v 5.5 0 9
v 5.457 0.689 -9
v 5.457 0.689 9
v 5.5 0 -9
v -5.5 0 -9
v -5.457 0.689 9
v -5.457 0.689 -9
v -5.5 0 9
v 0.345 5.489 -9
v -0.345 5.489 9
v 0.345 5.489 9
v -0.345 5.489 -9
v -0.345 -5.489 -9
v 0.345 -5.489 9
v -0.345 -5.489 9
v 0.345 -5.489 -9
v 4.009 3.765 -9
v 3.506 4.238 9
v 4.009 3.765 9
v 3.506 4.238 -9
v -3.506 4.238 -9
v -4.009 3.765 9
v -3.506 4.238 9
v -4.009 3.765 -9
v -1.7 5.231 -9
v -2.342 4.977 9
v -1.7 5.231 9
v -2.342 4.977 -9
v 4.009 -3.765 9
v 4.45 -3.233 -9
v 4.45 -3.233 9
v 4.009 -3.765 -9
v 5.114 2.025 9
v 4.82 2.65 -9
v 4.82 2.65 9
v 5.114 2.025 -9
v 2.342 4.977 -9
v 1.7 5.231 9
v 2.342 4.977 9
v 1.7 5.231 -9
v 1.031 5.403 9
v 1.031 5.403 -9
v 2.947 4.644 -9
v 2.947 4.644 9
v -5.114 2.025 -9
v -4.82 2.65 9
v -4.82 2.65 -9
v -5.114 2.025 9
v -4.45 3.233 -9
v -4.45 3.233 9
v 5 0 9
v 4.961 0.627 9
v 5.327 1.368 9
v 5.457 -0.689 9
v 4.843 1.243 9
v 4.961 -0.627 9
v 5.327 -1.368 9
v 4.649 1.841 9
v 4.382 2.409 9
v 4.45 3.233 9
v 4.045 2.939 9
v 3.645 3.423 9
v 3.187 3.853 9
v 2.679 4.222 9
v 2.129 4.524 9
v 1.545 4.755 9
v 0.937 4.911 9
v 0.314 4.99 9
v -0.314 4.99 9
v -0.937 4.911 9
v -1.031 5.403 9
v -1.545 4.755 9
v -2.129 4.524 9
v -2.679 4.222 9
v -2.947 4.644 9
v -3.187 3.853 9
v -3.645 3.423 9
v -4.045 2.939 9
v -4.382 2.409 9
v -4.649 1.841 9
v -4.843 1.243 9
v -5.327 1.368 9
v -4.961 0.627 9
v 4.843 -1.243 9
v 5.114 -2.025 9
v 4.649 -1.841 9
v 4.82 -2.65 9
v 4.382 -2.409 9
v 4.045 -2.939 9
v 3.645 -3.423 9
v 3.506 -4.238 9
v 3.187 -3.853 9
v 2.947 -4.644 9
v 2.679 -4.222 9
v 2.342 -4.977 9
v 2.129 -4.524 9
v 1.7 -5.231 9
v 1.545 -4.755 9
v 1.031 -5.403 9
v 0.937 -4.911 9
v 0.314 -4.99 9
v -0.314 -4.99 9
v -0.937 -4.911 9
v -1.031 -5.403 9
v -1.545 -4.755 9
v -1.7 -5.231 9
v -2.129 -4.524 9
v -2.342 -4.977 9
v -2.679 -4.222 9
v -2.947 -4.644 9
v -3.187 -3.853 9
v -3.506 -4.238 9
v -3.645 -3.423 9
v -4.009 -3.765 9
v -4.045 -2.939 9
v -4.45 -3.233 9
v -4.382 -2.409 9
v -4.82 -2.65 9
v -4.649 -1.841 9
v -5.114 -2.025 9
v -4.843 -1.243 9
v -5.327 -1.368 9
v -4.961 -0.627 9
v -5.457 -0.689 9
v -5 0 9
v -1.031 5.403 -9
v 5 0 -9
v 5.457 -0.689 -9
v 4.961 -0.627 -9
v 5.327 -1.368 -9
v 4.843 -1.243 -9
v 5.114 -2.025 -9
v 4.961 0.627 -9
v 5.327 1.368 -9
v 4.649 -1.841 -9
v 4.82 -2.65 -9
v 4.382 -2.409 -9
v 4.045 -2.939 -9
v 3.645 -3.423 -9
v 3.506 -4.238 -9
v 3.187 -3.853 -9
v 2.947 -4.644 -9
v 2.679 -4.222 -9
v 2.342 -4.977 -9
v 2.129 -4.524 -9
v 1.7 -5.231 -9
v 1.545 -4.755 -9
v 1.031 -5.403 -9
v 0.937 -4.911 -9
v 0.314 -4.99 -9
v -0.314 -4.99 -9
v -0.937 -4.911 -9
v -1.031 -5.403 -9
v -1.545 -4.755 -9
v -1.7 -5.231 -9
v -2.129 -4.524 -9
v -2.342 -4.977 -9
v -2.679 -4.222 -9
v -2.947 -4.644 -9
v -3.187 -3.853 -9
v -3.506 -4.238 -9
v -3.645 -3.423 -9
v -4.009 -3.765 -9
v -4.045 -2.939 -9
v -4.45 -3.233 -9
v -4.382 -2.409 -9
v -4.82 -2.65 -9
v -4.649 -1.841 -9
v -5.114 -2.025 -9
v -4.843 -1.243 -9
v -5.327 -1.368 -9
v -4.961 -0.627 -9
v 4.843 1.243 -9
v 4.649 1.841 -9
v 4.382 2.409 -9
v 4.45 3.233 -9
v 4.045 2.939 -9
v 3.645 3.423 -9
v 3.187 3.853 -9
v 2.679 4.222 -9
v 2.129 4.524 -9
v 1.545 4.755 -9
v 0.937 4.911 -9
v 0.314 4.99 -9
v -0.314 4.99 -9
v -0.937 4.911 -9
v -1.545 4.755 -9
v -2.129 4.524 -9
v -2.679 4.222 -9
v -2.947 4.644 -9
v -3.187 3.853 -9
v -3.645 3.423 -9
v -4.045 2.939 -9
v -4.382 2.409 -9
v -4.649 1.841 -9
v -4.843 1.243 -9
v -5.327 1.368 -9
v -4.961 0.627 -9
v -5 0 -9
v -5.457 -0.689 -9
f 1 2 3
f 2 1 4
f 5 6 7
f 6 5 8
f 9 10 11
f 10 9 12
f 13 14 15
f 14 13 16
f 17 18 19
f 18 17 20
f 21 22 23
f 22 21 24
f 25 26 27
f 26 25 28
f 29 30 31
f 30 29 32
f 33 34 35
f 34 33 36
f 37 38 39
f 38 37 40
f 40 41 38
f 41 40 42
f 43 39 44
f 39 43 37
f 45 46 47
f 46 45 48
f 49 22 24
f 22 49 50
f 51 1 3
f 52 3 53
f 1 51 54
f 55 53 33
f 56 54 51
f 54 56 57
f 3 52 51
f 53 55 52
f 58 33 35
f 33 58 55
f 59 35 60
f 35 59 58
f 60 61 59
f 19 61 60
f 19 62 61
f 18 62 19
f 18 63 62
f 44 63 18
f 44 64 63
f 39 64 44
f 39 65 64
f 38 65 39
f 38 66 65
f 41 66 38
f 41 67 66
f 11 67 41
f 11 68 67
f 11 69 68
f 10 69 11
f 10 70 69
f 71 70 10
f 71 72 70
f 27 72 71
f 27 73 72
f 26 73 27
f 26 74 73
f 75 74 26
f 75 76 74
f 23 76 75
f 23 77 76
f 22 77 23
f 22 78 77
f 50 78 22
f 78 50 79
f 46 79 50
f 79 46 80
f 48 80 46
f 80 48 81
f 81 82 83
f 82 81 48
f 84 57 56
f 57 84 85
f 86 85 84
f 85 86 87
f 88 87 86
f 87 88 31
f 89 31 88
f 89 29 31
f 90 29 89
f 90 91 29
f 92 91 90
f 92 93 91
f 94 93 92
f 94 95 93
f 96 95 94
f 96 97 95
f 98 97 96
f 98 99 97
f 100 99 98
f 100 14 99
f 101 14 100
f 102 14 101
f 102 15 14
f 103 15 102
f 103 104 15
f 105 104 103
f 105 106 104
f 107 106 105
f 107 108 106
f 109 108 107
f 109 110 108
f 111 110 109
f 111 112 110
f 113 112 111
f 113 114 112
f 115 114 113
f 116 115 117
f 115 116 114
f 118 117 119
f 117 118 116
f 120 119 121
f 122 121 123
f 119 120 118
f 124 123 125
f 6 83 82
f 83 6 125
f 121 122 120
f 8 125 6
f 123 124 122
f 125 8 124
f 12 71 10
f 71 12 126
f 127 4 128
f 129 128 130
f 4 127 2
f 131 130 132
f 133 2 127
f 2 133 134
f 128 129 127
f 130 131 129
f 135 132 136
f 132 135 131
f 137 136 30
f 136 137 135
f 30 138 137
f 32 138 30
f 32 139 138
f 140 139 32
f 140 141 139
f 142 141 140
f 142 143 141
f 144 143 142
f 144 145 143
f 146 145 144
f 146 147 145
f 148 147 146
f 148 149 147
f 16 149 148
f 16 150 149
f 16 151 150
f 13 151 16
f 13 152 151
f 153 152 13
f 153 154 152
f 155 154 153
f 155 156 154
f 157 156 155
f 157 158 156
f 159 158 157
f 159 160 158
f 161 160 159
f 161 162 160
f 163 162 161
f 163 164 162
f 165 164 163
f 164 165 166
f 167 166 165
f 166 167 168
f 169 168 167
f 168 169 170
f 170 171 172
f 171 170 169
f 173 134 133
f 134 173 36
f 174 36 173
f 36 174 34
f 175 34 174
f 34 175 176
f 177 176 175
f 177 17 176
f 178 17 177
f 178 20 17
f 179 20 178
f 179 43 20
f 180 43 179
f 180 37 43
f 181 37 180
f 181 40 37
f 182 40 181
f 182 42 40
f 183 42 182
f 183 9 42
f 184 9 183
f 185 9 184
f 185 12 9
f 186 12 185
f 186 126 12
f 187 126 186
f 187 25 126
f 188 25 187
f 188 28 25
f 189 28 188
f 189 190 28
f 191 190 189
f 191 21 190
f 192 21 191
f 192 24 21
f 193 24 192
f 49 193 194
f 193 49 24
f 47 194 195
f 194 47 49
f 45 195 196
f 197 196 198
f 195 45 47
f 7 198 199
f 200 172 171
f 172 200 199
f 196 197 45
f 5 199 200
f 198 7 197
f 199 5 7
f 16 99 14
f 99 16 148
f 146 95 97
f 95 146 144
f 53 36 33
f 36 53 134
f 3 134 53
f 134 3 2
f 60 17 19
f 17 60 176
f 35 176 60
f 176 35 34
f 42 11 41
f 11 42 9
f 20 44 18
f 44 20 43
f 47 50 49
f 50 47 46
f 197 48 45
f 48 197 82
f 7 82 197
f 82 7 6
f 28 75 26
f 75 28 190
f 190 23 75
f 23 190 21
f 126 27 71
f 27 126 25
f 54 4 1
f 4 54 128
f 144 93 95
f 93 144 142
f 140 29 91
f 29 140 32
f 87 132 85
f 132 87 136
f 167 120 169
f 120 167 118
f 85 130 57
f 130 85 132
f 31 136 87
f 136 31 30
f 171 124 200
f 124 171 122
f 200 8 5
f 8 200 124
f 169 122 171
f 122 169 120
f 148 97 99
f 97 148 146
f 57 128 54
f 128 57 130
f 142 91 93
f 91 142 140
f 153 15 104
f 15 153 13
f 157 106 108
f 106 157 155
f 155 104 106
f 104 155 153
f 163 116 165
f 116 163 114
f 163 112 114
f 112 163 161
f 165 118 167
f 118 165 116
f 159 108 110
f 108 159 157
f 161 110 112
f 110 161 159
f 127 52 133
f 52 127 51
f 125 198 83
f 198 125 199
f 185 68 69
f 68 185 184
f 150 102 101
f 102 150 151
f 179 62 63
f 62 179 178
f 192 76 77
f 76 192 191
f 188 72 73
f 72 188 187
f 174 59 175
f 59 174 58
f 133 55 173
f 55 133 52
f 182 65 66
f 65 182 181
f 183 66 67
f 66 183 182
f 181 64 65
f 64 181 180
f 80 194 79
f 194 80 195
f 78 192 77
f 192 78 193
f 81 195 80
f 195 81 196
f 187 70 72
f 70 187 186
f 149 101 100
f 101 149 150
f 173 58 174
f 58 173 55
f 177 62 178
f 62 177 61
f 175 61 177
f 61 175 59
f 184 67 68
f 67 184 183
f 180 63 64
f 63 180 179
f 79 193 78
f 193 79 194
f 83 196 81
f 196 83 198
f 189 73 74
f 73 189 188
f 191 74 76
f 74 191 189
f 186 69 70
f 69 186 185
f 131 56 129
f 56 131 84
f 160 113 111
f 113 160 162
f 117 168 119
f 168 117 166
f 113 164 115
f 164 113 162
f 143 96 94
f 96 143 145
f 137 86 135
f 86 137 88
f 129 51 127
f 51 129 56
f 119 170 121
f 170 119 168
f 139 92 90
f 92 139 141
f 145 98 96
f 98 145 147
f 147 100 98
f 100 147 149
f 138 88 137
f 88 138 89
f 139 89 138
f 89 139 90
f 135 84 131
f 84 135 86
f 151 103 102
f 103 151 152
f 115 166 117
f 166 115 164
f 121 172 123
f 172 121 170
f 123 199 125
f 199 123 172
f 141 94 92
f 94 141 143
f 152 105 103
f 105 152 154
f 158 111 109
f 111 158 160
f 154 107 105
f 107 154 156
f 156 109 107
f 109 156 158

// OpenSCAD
$fn = 50;


difference() {
	union() {
		translate(v = [0, 0, -9.0000000000]) {
			cylinder(h = 18, r = 5.5000000000);
		}
	}
	union() {
		translate(v = [0, 0, -100.0000000000]) {
			cylinder(h = 200, r = 5);
		}
	}
}
